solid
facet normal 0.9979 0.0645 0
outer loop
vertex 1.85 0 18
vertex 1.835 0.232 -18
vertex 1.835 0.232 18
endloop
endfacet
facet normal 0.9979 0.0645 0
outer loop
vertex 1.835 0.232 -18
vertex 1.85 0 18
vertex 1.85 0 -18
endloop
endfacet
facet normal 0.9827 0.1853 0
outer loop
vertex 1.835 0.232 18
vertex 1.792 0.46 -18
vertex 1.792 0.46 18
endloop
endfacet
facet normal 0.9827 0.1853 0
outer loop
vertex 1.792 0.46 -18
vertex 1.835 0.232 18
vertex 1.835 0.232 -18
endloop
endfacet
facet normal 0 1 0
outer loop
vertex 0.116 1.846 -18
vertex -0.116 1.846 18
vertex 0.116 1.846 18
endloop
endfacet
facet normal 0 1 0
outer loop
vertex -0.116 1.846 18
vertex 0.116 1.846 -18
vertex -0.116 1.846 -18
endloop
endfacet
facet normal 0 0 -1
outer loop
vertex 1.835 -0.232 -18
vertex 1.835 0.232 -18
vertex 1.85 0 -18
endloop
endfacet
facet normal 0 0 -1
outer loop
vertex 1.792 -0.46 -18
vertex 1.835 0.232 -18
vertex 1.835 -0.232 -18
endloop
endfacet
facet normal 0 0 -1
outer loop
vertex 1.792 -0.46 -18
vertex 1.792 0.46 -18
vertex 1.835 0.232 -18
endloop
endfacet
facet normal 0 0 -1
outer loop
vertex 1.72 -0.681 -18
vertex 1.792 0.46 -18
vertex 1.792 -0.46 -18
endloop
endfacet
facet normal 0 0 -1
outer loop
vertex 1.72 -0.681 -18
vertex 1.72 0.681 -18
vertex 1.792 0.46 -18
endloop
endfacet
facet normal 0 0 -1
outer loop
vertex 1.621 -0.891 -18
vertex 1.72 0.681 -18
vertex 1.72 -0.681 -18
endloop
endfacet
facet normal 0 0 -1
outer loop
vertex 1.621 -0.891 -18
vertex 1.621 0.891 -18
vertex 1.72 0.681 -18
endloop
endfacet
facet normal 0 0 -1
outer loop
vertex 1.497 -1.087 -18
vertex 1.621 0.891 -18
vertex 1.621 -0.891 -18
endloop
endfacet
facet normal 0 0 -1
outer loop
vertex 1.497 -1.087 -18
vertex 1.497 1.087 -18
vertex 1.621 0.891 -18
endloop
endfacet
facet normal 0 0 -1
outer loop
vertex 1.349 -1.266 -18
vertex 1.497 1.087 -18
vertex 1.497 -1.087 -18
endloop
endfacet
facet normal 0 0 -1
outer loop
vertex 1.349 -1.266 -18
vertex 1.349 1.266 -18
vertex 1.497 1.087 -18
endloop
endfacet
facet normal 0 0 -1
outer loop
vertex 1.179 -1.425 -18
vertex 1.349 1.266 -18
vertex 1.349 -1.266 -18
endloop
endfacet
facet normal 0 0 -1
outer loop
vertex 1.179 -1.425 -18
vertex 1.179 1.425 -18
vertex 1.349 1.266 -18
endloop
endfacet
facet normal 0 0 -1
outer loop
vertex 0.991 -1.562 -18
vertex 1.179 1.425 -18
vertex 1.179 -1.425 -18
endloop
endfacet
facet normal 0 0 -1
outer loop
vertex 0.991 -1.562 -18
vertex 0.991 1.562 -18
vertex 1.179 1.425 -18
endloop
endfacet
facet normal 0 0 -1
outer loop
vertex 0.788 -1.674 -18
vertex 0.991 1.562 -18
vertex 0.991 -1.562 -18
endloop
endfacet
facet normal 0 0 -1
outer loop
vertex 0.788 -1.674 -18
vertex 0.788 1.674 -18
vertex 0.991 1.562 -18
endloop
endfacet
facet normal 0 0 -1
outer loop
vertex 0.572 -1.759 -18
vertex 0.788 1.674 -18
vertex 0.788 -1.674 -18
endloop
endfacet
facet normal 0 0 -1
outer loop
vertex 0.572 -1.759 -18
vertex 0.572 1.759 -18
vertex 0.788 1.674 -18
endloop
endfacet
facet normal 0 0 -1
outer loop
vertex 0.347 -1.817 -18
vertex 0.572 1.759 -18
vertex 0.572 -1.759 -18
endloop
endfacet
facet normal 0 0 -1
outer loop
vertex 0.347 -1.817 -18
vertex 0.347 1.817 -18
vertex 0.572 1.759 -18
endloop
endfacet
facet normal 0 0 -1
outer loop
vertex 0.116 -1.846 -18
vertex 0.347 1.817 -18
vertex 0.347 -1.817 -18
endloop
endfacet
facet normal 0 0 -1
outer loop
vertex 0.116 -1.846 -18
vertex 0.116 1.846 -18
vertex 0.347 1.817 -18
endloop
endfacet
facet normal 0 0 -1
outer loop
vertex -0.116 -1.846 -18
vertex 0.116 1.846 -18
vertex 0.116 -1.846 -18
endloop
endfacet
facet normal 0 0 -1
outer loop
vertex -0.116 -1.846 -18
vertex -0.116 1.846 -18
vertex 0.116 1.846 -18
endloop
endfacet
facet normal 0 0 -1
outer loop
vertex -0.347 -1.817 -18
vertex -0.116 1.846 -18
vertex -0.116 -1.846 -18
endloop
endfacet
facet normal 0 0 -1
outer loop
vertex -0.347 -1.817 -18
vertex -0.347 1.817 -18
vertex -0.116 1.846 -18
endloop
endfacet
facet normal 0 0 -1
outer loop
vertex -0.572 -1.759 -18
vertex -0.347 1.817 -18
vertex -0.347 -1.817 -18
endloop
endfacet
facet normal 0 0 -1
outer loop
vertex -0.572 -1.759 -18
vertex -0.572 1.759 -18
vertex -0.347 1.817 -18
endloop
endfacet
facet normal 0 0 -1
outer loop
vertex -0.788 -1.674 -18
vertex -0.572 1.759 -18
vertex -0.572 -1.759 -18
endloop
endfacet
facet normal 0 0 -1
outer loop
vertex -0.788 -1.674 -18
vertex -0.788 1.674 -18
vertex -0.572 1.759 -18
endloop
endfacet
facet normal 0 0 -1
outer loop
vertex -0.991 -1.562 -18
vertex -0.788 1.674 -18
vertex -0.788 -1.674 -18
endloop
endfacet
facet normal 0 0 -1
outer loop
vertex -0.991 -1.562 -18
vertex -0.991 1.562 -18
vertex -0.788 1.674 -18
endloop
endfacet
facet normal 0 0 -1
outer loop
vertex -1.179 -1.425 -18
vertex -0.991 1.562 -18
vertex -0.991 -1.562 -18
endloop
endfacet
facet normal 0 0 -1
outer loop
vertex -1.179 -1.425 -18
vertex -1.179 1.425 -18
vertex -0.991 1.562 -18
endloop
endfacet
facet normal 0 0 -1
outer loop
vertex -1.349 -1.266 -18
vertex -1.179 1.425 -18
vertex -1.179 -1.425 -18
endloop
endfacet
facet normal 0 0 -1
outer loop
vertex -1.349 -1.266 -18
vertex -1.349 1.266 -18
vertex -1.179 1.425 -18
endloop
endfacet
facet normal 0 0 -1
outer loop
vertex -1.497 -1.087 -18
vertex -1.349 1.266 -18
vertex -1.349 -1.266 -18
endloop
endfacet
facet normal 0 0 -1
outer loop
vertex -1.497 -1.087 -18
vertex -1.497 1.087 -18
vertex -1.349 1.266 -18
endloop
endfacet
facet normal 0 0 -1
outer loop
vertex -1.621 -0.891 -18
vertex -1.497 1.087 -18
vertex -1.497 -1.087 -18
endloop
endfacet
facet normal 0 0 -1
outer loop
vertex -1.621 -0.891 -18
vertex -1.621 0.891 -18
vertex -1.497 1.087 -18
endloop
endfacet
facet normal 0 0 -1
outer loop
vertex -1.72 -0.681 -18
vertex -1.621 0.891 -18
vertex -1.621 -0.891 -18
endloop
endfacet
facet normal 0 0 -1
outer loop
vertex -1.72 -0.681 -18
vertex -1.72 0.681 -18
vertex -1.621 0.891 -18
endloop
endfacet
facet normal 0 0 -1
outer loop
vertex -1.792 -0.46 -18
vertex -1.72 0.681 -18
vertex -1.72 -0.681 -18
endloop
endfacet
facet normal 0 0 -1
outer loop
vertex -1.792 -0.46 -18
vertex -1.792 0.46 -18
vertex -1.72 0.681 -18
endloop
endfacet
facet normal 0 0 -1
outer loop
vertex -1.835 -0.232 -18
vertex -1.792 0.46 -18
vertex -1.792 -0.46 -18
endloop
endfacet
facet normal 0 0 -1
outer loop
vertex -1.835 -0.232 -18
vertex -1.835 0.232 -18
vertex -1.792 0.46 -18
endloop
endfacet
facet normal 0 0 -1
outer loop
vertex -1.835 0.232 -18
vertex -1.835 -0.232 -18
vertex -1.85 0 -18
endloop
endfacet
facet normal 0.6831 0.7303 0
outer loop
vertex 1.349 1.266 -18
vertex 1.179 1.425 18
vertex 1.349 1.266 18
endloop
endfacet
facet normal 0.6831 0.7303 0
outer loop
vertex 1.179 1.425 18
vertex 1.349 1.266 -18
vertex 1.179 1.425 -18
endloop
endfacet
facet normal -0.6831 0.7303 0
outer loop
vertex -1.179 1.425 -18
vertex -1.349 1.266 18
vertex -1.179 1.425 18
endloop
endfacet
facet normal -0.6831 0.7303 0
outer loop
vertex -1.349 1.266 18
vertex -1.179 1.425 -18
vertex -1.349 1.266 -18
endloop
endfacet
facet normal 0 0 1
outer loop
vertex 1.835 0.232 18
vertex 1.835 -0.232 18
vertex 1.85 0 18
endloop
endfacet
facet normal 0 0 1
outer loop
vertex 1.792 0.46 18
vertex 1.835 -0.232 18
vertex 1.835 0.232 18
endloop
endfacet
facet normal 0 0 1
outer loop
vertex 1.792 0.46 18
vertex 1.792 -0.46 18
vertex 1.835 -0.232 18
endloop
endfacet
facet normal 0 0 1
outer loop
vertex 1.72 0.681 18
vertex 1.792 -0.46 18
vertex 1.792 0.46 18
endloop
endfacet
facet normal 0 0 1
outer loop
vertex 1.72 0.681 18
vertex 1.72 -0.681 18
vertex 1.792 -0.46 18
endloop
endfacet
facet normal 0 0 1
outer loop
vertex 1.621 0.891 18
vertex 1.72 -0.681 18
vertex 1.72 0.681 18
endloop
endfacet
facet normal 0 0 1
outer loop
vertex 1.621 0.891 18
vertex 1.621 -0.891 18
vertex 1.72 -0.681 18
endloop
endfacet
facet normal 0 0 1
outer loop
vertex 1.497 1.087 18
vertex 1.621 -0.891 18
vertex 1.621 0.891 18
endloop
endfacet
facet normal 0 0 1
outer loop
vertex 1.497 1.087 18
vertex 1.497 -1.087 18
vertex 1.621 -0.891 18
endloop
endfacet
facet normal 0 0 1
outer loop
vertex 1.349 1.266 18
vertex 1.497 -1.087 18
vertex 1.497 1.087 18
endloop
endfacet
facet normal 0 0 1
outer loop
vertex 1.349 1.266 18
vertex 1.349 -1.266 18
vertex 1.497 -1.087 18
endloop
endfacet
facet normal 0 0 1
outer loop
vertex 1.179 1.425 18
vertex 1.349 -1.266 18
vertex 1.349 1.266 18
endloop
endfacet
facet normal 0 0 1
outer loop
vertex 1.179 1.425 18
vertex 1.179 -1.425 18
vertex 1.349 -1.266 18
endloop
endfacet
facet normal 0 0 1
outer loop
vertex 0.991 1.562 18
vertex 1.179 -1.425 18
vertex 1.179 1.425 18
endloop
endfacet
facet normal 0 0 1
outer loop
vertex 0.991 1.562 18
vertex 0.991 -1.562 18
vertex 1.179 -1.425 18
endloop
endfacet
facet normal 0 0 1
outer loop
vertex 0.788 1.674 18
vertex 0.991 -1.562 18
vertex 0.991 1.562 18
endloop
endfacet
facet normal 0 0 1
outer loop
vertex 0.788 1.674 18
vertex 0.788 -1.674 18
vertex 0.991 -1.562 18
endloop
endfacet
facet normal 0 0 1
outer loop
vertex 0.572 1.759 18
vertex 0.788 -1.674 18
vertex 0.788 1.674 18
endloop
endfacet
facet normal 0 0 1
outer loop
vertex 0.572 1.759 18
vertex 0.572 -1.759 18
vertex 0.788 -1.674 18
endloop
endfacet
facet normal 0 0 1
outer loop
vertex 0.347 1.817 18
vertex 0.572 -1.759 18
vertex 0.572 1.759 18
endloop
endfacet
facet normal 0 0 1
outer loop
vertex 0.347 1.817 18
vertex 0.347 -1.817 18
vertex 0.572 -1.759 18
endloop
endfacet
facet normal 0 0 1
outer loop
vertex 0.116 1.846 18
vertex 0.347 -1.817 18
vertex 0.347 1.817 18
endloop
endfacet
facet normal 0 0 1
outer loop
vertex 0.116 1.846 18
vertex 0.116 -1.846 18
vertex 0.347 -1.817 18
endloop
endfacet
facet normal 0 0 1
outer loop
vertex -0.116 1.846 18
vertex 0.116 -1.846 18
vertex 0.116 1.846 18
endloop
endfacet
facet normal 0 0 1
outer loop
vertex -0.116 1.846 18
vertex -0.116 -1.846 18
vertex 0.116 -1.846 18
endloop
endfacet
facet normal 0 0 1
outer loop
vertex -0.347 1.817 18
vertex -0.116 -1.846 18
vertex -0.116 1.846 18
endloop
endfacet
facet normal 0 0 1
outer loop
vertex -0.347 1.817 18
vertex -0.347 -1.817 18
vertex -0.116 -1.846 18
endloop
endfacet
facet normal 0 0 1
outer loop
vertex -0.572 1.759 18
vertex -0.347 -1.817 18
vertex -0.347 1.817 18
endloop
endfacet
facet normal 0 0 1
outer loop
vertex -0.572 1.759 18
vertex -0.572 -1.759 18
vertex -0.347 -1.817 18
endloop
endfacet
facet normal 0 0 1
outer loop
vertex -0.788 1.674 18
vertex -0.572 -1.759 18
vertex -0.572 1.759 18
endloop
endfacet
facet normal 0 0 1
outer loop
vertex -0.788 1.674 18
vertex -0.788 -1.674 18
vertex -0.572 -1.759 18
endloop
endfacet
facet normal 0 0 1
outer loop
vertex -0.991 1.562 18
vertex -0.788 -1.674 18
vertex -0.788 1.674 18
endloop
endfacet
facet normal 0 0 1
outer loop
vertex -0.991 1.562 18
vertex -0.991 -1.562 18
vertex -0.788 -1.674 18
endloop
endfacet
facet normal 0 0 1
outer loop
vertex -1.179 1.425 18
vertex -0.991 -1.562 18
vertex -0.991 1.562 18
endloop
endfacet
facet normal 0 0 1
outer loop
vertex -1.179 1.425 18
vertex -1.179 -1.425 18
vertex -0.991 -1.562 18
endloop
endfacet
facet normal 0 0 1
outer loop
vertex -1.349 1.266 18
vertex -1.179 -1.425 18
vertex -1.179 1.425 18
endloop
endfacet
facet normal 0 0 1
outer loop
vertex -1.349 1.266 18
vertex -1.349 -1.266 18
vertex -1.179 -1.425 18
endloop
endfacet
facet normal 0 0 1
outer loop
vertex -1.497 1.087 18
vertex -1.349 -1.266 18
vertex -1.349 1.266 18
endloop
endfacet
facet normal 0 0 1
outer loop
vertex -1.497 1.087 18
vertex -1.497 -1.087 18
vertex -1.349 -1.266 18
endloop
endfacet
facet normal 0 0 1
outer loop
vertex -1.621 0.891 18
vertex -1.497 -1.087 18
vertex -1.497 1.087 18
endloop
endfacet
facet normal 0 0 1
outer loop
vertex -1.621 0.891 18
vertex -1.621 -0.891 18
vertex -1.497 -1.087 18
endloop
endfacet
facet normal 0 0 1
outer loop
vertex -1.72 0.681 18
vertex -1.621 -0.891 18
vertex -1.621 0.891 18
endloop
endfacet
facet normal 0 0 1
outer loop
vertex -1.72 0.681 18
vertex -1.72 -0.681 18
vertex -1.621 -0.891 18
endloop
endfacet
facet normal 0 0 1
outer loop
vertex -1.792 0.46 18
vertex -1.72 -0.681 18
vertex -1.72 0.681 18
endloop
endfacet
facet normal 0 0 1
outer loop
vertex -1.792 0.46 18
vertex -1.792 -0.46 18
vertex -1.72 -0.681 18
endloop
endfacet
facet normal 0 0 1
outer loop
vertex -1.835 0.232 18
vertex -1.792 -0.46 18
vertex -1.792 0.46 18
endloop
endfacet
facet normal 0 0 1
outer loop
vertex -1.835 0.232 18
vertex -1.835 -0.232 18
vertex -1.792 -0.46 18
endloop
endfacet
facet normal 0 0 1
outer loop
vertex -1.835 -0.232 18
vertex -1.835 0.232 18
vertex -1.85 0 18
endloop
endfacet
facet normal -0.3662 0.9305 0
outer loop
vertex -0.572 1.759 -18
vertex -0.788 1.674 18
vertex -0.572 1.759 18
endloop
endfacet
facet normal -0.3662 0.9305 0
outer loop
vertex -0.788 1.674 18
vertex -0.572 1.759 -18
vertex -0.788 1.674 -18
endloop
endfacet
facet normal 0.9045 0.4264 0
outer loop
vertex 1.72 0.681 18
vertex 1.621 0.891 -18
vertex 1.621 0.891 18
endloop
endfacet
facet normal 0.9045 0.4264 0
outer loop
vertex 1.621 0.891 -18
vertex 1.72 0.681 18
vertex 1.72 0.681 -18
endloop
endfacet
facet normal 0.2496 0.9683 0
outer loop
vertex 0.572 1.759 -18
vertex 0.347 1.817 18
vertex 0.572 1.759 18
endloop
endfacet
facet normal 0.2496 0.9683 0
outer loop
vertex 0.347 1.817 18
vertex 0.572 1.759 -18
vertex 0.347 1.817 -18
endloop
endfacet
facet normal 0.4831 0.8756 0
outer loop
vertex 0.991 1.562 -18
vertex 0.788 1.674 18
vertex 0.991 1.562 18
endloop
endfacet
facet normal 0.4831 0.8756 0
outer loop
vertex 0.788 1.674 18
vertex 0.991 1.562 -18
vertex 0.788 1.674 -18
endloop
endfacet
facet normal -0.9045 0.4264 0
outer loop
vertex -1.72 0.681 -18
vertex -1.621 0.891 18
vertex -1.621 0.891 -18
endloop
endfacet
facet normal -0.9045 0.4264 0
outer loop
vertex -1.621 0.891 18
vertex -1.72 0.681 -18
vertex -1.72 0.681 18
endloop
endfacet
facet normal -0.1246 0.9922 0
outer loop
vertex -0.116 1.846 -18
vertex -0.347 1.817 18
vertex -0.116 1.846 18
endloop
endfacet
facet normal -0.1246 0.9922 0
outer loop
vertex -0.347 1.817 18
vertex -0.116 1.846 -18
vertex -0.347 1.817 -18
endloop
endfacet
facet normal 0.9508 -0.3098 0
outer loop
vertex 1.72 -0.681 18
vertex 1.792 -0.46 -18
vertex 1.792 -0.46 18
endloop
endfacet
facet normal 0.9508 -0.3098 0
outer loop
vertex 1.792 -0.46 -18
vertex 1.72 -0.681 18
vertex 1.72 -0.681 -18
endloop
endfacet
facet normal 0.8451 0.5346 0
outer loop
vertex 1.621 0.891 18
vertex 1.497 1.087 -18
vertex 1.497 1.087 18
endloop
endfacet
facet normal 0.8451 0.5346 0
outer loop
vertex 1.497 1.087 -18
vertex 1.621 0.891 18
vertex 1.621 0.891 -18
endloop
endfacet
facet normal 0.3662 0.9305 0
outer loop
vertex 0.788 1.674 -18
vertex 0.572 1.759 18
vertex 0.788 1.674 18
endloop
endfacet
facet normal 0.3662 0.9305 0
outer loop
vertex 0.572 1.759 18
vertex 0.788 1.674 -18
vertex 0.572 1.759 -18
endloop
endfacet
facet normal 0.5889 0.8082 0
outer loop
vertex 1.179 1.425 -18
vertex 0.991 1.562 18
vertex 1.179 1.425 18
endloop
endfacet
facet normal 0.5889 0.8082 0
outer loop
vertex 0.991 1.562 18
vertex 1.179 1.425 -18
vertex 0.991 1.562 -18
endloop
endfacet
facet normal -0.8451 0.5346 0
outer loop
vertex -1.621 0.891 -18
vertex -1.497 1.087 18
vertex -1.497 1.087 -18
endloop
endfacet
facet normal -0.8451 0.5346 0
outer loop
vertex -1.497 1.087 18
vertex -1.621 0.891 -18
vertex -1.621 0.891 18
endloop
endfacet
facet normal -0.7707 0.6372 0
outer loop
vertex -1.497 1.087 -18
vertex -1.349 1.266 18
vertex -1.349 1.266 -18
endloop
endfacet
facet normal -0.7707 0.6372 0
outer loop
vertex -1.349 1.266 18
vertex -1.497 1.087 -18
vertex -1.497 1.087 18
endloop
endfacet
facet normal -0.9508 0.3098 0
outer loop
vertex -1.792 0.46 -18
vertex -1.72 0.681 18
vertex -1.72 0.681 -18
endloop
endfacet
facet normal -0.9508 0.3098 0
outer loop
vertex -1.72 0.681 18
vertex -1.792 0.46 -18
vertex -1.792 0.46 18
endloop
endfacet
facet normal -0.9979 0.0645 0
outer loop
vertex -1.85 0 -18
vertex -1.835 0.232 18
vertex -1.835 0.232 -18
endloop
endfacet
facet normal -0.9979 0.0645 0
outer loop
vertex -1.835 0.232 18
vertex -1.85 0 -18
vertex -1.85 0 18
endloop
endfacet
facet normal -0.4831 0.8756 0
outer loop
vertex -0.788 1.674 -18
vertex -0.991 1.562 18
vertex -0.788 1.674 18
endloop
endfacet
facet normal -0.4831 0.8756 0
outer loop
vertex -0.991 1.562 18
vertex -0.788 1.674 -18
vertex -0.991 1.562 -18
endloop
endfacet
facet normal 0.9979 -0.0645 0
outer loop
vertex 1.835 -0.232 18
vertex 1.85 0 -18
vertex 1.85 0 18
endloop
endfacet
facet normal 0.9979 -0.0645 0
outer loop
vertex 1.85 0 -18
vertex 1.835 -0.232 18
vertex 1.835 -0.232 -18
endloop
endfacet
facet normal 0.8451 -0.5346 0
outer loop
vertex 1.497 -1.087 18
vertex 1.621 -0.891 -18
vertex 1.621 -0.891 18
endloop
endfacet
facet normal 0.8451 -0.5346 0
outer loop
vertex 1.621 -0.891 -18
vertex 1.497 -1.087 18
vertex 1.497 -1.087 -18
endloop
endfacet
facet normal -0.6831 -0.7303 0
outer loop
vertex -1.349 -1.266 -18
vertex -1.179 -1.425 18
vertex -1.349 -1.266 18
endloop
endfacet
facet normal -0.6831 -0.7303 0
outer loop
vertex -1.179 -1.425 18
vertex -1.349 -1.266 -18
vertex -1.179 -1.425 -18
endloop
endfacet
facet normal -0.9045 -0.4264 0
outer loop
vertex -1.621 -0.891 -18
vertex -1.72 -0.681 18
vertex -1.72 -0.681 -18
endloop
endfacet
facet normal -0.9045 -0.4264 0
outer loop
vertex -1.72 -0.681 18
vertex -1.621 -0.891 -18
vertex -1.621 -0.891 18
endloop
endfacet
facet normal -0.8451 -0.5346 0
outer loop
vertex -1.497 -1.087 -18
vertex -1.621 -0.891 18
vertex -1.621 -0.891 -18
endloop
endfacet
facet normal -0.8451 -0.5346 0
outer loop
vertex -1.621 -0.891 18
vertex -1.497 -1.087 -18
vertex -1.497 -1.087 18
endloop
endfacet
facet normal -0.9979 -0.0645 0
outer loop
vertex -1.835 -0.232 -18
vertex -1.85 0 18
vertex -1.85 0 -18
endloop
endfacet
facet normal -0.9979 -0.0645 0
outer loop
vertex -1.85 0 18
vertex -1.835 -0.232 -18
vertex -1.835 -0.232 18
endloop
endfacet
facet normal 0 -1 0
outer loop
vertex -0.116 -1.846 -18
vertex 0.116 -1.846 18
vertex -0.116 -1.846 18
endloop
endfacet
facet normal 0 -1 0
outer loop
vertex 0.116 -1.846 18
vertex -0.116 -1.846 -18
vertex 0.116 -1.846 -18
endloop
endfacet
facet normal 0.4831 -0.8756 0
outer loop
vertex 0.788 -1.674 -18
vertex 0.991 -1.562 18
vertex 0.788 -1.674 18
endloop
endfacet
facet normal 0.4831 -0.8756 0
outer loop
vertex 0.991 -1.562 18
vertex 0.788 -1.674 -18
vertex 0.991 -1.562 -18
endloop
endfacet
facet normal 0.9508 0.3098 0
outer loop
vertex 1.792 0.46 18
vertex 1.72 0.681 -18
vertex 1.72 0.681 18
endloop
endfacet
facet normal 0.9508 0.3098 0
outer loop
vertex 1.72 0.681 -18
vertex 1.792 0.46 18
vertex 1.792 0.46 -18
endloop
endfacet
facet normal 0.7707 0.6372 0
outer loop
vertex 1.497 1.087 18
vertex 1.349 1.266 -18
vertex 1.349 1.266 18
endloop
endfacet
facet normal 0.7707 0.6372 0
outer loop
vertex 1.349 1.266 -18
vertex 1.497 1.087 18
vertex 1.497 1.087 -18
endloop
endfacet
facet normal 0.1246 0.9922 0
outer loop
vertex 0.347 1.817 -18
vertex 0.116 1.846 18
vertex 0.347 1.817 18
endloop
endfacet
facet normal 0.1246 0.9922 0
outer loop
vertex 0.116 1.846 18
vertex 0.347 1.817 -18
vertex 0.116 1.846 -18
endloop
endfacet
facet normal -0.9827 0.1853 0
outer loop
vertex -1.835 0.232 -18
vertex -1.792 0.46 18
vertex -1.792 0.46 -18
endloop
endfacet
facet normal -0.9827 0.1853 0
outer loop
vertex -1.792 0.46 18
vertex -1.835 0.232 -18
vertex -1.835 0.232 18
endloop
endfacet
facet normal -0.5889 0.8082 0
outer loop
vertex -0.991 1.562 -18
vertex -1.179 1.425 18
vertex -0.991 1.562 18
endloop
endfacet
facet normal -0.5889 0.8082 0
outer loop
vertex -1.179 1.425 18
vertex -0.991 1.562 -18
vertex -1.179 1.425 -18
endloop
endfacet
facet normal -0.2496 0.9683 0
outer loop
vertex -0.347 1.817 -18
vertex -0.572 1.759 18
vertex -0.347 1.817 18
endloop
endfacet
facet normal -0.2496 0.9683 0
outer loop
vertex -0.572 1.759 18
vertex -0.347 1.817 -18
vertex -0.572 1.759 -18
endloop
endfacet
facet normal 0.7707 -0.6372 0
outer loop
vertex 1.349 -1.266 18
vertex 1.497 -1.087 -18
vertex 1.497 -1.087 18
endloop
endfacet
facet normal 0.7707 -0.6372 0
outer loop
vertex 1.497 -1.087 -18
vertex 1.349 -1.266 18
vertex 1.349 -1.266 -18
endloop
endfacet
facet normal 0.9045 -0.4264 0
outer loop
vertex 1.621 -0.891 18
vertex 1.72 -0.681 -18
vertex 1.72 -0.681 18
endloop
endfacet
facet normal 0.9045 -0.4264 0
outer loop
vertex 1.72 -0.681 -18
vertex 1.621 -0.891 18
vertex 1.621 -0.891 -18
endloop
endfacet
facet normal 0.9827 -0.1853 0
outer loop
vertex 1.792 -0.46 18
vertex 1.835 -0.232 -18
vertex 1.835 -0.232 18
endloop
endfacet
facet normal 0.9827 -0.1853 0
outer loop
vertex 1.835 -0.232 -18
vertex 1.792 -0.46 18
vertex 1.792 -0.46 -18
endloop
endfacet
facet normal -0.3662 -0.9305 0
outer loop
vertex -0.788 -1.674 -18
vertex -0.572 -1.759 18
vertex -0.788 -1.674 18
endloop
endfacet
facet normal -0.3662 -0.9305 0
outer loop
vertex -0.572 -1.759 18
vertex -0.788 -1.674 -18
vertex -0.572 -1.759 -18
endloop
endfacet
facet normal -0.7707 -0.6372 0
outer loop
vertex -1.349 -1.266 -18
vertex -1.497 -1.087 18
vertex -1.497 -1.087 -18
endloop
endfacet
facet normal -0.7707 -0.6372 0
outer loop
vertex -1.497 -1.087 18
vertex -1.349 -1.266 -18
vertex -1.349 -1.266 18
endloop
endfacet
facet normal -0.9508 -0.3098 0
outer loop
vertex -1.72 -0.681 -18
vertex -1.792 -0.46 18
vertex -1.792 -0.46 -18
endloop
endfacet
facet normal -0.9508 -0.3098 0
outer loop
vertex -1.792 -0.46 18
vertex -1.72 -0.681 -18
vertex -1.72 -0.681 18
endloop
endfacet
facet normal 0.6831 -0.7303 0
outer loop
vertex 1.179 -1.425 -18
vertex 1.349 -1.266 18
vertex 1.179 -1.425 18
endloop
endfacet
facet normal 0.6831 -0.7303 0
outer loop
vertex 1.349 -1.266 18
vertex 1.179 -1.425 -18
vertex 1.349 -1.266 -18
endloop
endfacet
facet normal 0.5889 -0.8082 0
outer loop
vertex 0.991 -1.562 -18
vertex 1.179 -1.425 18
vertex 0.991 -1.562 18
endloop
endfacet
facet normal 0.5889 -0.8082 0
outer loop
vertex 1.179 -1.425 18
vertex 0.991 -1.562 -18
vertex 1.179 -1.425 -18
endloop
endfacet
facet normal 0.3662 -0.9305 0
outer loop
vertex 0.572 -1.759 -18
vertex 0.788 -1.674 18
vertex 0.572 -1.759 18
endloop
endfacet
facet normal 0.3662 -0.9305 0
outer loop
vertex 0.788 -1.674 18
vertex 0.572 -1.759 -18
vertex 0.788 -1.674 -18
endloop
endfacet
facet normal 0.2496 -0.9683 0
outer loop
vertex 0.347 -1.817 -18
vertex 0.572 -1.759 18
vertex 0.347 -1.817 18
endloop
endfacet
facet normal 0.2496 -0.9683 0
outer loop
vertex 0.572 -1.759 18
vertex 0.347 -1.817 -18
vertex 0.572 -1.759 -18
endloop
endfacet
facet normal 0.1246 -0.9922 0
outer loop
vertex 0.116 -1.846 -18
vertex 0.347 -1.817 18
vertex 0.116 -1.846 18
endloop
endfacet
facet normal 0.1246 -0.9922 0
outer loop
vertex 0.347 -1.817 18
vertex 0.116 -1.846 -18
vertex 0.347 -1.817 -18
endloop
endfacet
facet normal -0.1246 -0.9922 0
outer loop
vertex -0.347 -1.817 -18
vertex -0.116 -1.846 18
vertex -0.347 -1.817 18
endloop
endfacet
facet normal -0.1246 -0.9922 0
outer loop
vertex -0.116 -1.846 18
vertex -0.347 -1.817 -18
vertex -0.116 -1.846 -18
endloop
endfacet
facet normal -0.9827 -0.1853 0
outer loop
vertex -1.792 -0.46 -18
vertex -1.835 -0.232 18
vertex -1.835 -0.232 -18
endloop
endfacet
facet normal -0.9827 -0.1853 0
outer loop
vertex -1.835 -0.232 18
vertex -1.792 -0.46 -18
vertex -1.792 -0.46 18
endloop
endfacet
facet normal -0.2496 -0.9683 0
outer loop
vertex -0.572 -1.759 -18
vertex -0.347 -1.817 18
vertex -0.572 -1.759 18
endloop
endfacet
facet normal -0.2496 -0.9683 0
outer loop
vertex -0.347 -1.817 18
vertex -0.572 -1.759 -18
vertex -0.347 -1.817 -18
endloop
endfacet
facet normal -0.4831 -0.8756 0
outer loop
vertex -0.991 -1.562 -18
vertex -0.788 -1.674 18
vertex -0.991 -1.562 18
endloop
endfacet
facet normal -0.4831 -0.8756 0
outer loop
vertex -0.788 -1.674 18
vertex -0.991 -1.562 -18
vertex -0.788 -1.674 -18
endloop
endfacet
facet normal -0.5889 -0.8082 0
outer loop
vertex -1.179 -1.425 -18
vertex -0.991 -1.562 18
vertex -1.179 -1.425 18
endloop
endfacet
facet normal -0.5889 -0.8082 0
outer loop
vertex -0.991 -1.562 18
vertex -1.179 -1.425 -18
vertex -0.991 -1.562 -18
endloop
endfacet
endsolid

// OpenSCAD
$fn = 50;


difference() {
	union() {
		translate(v = [0, 0, -18.0000000000]) {
			cylinder(h = 36, r = 1.8500000000);
		}
	}
	union() {
		translate(v = [0, 0, -100.0000000000]) {
			cylinder(h = 200, r = 0);
		}
	}
}
